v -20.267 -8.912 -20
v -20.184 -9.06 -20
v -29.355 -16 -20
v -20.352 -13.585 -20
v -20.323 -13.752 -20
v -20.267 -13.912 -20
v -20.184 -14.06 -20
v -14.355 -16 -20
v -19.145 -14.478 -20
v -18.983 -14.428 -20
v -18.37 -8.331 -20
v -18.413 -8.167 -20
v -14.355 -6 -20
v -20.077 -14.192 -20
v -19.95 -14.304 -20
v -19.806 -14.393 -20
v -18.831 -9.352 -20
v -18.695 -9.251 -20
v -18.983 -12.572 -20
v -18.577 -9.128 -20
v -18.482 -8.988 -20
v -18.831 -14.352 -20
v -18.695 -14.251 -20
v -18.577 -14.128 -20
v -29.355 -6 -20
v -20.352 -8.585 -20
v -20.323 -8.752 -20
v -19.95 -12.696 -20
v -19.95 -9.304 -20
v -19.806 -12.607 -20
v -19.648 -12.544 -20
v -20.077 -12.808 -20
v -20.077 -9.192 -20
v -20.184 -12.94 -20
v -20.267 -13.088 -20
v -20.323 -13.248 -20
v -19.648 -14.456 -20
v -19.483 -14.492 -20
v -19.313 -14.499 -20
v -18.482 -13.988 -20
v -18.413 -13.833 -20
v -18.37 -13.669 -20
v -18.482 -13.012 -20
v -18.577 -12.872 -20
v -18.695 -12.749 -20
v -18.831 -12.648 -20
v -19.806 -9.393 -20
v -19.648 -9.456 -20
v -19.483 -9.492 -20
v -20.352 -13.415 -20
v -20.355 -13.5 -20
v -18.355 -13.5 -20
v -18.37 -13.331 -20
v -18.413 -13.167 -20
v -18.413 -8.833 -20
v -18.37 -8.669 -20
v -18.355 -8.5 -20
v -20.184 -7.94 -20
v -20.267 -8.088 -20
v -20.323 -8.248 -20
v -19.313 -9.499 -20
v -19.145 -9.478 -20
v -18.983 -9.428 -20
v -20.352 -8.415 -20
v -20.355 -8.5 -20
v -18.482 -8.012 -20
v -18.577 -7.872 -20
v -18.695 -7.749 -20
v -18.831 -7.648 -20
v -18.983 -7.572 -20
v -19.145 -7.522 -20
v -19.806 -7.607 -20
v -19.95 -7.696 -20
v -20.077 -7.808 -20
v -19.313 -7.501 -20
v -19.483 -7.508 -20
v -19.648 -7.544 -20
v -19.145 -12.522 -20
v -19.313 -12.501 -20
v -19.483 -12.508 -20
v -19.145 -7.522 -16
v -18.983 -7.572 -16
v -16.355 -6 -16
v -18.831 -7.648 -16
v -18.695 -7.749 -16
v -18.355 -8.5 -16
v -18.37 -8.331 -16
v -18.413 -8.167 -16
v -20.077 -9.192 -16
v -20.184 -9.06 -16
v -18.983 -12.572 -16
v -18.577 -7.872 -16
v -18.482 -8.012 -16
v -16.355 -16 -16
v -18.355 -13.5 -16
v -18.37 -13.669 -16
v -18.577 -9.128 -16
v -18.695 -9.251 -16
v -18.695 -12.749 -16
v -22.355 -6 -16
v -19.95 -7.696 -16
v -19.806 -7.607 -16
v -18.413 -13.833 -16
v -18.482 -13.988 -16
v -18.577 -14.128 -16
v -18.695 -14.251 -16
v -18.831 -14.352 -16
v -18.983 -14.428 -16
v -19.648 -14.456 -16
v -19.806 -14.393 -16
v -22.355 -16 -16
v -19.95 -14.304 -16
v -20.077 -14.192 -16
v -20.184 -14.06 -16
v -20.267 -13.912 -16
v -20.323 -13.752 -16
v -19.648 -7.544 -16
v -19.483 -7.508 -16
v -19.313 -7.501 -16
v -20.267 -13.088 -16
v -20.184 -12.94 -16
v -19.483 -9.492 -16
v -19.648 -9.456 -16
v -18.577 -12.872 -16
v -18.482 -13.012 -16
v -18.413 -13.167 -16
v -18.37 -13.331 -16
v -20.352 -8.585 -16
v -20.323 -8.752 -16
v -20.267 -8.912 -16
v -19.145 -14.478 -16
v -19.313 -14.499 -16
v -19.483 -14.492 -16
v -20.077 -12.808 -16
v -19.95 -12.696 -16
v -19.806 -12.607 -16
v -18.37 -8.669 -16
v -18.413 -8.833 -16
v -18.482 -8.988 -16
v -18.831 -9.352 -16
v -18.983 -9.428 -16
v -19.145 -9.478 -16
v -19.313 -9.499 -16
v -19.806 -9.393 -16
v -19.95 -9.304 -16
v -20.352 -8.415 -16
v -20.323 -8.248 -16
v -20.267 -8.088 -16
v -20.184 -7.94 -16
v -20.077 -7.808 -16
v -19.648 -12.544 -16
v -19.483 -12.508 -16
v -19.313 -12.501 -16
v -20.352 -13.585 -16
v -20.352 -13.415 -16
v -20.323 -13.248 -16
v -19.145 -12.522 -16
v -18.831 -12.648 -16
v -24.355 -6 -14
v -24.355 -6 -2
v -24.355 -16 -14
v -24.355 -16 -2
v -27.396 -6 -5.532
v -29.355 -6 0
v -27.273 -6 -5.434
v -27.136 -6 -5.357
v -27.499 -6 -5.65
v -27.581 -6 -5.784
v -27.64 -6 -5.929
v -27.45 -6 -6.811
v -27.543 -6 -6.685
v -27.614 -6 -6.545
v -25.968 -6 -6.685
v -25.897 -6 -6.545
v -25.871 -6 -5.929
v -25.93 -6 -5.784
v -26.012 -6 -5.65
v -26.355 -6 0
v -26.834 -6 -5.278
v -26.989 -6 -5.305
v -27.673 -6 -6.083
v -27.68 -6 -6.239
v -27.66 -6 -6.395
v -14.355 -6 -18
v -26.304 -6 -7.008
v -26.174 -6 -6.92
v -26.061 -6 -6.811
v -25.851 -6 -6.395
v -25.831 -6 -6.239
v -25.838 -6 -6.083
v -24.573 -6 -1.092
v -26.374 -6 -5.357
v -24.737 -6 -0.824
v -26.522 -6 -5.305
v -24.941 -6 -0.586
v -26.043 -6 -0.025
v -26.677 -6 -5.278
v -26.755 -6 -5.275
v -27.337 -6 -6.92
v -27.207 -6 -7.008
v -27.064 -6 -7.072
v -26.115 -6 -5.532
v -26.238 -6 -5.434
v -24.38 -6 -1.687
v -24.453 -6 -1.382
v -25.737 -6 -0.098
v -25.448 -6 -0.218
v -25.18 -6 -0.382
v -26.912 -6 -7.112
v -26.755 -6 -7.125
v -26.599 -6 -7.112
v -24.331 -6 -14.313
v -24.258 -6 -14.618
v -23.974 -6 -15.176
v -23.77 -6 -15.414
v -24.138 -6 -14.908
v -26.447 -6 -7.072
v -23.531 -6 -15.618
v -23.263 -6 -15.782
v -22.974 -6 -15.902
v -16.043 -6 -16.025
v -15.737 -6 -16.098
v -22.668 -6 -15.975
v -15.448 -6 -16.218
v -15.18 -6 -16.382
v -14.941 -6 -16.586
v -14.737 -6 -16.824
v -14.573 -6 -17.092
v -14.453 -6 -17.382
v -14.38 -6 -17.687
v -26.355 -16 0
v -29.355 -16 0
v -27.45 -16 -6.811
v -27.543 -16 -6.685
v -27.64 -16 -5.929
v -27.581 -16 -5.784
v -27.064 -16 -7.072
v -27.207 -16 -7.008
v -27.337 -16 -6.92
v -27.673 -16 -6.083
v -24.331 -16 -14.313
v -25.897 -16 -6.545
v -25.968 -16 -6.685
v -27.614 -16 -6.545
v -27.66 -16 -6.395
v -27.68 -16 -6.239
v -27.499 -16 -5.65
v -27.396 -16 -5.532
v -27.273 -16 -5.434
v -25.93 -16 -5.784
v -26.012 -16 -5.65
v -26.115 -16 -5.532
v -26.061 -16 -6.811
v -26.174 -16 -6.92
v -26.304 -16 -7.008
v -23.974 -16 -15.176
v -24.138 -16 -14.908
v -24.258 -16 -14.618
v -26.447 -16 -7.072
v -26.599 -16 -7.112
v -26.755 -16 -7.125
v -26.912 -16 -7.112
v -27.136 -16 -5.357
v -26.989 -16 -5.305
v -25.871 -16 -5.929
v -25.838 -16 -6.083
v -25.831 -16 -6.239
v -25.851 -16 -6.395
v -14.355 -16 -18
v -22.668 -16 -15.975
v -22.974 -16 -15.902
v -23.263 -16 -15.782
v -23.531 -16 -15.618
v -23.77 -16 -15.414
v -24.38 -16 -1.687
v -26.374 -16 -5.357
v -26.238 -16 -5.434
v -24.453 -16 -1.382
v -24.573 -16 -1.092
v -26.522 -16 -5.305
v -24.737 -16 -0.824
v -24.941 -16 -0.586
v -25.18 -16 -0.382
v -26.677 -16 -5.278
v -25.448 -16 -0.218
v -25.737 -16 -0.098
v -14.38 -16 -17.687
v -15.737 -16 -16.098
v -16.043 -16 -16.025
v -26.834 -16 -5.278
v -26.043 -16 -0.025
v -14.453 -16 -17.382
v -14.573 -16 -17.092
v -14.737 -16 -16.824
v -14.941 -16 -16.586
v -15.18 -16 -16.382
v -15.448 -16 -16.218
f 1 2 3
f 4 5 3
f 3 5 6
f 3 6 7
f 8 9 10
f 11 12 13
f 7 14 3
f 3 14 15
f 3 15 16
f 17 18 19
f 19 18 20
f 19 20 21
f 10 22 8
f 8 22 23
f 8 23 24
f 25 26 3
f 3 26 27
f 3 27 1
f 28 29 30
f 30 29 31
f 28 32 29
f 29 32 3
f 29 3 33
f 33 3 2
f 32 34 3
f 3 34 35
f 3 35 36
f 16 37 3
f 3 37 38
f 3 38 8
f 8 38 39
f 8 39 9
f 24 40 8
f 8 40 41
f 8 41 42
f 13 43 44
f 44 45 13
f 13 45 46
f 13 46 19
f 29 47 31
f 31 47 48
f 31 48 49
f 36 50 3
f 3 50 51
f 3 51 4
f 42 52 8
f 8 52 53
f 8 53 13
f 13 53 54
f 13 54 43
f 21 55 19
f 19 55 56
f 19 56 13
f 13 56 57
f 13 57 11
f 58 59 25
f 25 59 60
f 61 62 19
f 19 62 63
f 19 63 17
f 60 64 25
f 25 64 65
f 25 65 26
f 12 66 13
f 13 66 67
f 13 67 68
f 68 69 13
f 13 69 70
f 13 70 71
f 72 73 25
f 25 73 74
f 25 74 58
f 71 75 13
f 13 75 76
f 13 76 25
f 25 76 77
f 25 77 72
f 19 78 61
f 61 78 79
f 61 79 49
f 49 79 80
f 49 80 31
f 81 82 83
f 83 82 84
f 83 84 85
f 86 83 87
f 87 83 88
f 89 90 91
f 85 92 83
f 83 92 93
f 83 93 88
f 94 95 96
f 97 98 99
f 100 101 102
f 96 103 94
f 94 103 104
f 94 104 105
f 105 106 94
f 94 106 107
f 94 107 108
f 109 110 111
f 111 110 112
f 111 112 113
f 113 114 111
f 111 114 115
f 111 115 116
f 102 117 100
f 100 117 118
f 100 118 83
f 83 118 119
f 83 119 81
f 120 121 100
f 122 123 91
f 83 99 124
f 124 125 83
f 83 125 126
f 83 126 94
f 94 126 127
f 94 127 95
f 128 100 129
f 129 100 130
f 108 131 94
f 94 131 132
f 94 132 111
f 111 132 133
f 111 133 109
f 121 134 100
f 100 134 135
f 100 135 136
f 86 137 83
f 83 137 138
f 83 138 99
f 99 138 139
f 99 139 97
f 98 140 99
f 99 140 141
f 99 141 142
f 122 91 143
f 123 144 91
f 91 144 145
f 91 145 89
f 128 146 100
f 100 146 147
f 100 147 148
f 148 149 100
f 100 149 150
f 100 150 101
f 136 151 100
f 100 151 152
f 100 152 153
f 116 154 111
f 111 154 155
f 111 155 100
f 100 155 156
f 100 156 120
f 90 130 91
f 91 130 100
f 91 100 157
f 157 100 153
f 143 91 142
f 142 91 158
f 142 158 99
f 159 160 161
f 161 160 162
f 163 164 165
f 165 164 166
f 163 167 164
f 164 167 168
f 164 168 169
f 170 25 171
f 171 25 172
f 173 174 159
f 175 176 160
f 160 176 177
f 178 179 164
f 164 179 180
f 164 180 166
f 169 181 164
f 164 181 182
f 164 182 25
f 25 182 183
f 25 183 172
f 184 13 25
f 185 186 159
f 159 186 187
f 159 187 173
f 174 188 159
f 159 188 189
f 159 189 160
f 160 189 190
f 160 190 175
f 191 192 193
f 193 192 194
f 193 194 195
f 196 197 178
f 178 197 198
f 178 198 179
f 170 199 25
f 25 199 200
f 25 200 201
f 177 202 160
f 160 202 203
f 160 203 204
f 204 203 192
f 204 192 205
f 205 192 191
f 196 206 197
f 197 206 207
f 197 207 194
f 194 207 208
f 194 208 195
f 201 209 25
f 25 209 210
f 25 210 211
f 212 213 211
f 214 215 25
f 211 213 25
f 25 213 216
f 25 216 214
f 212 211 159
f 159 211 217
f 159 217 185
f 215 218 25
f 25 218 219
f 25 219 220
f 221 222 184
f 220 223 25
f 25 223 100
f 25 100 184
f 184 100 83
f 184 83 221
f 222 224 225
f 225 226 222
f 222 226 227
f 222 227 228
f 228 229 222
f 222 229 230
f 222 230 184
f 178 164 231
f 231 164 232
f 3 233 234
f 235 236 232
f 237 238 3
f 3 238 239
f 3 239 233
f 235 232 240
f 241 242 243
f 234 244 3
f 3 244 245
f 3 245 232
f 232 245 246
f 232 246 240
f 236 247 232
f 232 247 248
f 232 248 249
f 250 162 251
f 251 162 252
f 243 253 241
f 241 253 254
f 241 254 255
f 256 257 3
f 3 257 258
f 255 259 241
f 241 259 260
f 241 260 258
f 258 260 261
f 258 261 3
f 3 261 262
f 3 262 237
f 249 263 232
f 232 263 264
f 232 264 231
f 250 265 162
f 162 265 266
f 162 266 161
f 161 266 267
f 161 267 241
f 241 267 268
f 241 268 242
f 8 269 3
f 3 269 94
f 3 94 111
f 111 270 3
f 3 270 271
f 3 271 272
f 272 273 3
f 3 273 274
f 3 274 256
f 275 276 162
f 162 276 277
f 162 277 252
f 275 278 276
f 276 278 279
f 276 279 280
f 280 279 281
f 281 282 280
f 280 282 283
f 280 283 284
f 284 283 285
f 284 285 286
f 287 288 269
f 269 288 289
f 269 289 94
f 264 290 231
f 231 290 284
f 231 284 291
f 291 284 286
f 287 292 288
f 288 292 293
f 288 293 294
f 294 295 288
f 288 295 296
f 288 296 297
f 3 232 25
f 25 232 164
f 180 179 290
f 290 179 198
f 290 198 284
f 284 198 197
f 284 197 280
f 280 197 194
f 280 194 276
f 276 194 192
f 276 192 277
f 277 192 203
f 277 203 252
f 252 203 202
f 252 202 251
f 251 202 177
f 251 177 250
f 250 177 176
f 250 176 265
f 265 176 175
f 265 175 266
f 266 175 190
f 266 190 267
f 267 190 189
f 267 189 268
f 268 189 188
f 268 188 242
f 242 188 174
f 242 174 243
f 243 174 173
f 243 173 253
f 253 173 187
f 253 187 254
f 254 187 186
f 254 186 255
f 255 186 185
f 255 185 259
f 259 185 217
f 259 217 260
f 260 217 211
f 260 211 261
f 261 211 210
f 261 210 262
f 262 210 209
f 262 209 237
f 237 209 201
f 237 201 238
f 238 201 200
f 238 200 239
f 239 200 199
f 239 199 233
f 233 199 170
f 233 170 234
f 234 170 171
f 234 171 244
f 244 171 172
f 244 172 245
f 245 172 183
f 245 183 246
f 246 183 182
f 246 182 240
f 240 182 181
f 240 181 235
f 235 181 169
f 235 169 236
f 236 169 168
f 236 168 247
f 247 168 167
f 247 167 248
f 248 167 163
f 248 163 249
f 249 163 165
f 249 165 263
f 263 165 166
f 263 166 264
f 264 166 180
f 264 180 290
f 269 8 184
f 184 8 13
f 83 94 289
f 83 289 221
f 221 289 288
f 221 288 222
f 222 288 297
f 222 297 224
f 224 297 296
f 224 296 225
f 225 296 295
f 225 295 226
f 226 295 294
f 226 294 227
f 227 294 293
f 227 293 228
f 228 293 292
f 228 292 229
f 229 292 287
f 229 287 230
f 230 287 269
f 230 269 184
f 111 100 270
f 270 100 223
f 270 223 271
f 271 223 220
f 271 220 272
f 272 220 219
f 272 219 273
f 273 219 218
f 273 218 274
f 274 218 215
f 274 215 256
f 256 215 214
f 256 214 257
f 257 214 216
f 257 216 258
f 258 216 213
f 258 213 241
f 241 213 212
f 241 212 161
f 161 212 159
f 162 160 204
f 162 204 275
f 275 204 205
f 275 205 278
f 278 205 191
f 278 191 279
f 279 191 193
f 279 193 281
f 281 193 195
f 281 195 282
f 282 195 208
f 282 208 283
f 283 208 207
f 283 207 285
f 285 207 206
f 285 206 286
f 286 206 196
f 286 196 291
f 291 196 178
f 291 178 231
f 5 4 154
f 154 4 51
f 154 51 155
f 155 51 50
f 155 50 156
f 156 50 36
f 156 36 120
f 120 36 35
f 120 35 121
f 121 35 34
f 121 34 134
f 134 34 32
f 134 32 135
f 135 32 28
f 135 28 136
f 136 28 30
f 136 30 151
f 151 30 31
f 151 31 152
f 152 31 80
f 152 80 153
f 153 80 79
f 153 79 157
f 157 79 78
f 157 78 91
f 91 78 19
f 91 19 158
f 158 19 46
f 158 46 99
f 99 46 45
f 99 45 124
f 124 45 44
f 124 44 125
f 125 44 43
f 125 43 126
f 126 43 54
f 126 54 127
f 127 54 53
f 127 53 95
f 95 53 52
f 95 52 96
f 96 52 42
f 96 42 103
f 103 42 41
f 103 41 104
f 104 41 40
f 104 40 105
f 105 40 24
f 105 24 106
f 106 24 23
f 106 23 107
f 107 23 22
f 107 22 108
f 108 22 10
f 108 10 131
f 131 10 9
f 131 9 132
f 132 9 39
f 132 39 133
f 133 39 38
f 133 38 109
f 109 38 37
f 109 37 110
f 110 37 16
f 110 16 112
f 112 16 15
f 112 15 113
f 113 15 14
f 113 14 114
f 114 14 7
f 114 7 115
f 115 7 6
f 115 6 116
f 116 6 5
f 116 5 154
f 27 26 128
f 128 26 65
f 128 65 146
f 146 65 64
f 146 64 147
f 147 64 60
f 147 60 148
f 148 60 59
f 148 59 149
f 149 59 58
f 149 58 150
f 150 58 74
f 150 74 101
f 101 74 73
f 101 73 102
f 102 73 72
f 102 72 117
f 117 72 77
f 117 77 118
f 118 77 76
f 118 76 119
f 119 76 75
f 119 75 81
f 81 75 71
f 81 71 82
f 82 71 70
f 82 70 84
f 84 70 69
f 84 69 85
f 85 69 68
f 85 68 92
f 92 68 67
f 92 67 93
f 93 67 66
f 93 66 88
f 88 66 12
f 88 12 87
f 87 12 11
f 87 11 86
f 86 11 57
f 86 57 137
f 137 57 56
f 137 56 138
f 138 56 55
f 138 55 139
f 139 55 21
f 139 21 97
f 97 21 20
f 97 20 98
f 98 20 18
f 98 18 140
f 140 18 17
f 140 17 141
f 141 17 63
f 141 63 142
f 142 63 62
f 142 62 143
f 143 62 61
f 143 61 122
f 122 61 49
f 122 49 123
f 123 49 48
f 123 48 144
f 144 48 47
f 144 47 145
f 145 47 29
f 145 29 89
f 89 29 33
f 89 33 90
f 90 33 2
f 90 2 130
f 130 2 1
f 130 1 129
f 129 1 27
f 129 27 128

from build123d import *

# Parameters (mm, degrees)
SKETCH2_W           = 12.4
SKETCH2_H           = 10
SKETCH2_W_2         = 7.6
BOSS_EXTRUDE1_DEPTH = 5
SKETCH3_R           = 0.925
CUT_EXTRUDE1_DEPTH  = 10
SKETCH4_W           = 4
SKETCH4_H           = 10
BOSS_EXTRUDE2_DEPTH = 10
FILLET1_R           = 2
SKETCH5_R           = 1
CUT_EXTRUDE2_DEPTH  = 4


with BuildPart() as part:
    # Sketch2 → Boss-Extrude1 (new body)
    with BuildSketch(Plane(origin=(-29.355490461, 0, 0), x_dir=(0, 0, -1), z_dir=(1, 0, 0))):
        with Locations((6.2, -11)):
            Rectangle(SKETCH2_W, SKETCH2_H)
        with Locations((16.2, -11)):
            Rectangle(SKETCH2_W_2, SKETCH2_H)
    extrude(amount=BOSS_EXTRUDE1_DEPTH)

    # Sketch3 → Cut-Extrude1 (cut)
    with BuildSketch(Plane(origin=(0, -16, 0), x_dir=(-1, 0, 0), z_dir=(0, -1, 0))):
        with Locations(Location((26.755490461, 6.2, 0), (0, 0, 90))):
            Circle(SKETCH3_R)
    extrude(amount=-CUT_EXTRUDE1_DEPTH, mode=Mode.SUBTRACT)

    # Sketch4 → Boss-Extrude2 (add)
    with BuildSketch(Plane(origin=(-24.355490461, 0, 0), x_dir=(0, 0, -1), z_dir=(1, 0, 0))):
        with Locations((18, -11)):
            Rectangle(SKETCH4_W, SKETCH4_H)
    extrude(amount=BOSS_EXTRUDE2_DEPTH)

    # Fillet1
    fillet1_edges = [part.edges().sort_by_distance(p)[0] for p in [
        (-24.355490461, -11, 0),
        (-24.355490461, -11, -16),
        (-14.355490461, -11, -16),
    ]]
    fillet(fillet1_edges, radius=FILLET1_R)

    # Sketch5 → Cut-Extrude2 (cut)
    with BuildSketch(Plane.XY.offset(-16)):
        with Locations((-19.355490461, -8.5)):
            Circle(SKETCH5_R)
        with Locations((-19.355490461, -13.5)):
            Circle(SKETCH5_R)
    extrude(amount=-CUT_EXTRUDE2_DEPTH, mode=Mode.SUBTRACT)


solid = part.part
